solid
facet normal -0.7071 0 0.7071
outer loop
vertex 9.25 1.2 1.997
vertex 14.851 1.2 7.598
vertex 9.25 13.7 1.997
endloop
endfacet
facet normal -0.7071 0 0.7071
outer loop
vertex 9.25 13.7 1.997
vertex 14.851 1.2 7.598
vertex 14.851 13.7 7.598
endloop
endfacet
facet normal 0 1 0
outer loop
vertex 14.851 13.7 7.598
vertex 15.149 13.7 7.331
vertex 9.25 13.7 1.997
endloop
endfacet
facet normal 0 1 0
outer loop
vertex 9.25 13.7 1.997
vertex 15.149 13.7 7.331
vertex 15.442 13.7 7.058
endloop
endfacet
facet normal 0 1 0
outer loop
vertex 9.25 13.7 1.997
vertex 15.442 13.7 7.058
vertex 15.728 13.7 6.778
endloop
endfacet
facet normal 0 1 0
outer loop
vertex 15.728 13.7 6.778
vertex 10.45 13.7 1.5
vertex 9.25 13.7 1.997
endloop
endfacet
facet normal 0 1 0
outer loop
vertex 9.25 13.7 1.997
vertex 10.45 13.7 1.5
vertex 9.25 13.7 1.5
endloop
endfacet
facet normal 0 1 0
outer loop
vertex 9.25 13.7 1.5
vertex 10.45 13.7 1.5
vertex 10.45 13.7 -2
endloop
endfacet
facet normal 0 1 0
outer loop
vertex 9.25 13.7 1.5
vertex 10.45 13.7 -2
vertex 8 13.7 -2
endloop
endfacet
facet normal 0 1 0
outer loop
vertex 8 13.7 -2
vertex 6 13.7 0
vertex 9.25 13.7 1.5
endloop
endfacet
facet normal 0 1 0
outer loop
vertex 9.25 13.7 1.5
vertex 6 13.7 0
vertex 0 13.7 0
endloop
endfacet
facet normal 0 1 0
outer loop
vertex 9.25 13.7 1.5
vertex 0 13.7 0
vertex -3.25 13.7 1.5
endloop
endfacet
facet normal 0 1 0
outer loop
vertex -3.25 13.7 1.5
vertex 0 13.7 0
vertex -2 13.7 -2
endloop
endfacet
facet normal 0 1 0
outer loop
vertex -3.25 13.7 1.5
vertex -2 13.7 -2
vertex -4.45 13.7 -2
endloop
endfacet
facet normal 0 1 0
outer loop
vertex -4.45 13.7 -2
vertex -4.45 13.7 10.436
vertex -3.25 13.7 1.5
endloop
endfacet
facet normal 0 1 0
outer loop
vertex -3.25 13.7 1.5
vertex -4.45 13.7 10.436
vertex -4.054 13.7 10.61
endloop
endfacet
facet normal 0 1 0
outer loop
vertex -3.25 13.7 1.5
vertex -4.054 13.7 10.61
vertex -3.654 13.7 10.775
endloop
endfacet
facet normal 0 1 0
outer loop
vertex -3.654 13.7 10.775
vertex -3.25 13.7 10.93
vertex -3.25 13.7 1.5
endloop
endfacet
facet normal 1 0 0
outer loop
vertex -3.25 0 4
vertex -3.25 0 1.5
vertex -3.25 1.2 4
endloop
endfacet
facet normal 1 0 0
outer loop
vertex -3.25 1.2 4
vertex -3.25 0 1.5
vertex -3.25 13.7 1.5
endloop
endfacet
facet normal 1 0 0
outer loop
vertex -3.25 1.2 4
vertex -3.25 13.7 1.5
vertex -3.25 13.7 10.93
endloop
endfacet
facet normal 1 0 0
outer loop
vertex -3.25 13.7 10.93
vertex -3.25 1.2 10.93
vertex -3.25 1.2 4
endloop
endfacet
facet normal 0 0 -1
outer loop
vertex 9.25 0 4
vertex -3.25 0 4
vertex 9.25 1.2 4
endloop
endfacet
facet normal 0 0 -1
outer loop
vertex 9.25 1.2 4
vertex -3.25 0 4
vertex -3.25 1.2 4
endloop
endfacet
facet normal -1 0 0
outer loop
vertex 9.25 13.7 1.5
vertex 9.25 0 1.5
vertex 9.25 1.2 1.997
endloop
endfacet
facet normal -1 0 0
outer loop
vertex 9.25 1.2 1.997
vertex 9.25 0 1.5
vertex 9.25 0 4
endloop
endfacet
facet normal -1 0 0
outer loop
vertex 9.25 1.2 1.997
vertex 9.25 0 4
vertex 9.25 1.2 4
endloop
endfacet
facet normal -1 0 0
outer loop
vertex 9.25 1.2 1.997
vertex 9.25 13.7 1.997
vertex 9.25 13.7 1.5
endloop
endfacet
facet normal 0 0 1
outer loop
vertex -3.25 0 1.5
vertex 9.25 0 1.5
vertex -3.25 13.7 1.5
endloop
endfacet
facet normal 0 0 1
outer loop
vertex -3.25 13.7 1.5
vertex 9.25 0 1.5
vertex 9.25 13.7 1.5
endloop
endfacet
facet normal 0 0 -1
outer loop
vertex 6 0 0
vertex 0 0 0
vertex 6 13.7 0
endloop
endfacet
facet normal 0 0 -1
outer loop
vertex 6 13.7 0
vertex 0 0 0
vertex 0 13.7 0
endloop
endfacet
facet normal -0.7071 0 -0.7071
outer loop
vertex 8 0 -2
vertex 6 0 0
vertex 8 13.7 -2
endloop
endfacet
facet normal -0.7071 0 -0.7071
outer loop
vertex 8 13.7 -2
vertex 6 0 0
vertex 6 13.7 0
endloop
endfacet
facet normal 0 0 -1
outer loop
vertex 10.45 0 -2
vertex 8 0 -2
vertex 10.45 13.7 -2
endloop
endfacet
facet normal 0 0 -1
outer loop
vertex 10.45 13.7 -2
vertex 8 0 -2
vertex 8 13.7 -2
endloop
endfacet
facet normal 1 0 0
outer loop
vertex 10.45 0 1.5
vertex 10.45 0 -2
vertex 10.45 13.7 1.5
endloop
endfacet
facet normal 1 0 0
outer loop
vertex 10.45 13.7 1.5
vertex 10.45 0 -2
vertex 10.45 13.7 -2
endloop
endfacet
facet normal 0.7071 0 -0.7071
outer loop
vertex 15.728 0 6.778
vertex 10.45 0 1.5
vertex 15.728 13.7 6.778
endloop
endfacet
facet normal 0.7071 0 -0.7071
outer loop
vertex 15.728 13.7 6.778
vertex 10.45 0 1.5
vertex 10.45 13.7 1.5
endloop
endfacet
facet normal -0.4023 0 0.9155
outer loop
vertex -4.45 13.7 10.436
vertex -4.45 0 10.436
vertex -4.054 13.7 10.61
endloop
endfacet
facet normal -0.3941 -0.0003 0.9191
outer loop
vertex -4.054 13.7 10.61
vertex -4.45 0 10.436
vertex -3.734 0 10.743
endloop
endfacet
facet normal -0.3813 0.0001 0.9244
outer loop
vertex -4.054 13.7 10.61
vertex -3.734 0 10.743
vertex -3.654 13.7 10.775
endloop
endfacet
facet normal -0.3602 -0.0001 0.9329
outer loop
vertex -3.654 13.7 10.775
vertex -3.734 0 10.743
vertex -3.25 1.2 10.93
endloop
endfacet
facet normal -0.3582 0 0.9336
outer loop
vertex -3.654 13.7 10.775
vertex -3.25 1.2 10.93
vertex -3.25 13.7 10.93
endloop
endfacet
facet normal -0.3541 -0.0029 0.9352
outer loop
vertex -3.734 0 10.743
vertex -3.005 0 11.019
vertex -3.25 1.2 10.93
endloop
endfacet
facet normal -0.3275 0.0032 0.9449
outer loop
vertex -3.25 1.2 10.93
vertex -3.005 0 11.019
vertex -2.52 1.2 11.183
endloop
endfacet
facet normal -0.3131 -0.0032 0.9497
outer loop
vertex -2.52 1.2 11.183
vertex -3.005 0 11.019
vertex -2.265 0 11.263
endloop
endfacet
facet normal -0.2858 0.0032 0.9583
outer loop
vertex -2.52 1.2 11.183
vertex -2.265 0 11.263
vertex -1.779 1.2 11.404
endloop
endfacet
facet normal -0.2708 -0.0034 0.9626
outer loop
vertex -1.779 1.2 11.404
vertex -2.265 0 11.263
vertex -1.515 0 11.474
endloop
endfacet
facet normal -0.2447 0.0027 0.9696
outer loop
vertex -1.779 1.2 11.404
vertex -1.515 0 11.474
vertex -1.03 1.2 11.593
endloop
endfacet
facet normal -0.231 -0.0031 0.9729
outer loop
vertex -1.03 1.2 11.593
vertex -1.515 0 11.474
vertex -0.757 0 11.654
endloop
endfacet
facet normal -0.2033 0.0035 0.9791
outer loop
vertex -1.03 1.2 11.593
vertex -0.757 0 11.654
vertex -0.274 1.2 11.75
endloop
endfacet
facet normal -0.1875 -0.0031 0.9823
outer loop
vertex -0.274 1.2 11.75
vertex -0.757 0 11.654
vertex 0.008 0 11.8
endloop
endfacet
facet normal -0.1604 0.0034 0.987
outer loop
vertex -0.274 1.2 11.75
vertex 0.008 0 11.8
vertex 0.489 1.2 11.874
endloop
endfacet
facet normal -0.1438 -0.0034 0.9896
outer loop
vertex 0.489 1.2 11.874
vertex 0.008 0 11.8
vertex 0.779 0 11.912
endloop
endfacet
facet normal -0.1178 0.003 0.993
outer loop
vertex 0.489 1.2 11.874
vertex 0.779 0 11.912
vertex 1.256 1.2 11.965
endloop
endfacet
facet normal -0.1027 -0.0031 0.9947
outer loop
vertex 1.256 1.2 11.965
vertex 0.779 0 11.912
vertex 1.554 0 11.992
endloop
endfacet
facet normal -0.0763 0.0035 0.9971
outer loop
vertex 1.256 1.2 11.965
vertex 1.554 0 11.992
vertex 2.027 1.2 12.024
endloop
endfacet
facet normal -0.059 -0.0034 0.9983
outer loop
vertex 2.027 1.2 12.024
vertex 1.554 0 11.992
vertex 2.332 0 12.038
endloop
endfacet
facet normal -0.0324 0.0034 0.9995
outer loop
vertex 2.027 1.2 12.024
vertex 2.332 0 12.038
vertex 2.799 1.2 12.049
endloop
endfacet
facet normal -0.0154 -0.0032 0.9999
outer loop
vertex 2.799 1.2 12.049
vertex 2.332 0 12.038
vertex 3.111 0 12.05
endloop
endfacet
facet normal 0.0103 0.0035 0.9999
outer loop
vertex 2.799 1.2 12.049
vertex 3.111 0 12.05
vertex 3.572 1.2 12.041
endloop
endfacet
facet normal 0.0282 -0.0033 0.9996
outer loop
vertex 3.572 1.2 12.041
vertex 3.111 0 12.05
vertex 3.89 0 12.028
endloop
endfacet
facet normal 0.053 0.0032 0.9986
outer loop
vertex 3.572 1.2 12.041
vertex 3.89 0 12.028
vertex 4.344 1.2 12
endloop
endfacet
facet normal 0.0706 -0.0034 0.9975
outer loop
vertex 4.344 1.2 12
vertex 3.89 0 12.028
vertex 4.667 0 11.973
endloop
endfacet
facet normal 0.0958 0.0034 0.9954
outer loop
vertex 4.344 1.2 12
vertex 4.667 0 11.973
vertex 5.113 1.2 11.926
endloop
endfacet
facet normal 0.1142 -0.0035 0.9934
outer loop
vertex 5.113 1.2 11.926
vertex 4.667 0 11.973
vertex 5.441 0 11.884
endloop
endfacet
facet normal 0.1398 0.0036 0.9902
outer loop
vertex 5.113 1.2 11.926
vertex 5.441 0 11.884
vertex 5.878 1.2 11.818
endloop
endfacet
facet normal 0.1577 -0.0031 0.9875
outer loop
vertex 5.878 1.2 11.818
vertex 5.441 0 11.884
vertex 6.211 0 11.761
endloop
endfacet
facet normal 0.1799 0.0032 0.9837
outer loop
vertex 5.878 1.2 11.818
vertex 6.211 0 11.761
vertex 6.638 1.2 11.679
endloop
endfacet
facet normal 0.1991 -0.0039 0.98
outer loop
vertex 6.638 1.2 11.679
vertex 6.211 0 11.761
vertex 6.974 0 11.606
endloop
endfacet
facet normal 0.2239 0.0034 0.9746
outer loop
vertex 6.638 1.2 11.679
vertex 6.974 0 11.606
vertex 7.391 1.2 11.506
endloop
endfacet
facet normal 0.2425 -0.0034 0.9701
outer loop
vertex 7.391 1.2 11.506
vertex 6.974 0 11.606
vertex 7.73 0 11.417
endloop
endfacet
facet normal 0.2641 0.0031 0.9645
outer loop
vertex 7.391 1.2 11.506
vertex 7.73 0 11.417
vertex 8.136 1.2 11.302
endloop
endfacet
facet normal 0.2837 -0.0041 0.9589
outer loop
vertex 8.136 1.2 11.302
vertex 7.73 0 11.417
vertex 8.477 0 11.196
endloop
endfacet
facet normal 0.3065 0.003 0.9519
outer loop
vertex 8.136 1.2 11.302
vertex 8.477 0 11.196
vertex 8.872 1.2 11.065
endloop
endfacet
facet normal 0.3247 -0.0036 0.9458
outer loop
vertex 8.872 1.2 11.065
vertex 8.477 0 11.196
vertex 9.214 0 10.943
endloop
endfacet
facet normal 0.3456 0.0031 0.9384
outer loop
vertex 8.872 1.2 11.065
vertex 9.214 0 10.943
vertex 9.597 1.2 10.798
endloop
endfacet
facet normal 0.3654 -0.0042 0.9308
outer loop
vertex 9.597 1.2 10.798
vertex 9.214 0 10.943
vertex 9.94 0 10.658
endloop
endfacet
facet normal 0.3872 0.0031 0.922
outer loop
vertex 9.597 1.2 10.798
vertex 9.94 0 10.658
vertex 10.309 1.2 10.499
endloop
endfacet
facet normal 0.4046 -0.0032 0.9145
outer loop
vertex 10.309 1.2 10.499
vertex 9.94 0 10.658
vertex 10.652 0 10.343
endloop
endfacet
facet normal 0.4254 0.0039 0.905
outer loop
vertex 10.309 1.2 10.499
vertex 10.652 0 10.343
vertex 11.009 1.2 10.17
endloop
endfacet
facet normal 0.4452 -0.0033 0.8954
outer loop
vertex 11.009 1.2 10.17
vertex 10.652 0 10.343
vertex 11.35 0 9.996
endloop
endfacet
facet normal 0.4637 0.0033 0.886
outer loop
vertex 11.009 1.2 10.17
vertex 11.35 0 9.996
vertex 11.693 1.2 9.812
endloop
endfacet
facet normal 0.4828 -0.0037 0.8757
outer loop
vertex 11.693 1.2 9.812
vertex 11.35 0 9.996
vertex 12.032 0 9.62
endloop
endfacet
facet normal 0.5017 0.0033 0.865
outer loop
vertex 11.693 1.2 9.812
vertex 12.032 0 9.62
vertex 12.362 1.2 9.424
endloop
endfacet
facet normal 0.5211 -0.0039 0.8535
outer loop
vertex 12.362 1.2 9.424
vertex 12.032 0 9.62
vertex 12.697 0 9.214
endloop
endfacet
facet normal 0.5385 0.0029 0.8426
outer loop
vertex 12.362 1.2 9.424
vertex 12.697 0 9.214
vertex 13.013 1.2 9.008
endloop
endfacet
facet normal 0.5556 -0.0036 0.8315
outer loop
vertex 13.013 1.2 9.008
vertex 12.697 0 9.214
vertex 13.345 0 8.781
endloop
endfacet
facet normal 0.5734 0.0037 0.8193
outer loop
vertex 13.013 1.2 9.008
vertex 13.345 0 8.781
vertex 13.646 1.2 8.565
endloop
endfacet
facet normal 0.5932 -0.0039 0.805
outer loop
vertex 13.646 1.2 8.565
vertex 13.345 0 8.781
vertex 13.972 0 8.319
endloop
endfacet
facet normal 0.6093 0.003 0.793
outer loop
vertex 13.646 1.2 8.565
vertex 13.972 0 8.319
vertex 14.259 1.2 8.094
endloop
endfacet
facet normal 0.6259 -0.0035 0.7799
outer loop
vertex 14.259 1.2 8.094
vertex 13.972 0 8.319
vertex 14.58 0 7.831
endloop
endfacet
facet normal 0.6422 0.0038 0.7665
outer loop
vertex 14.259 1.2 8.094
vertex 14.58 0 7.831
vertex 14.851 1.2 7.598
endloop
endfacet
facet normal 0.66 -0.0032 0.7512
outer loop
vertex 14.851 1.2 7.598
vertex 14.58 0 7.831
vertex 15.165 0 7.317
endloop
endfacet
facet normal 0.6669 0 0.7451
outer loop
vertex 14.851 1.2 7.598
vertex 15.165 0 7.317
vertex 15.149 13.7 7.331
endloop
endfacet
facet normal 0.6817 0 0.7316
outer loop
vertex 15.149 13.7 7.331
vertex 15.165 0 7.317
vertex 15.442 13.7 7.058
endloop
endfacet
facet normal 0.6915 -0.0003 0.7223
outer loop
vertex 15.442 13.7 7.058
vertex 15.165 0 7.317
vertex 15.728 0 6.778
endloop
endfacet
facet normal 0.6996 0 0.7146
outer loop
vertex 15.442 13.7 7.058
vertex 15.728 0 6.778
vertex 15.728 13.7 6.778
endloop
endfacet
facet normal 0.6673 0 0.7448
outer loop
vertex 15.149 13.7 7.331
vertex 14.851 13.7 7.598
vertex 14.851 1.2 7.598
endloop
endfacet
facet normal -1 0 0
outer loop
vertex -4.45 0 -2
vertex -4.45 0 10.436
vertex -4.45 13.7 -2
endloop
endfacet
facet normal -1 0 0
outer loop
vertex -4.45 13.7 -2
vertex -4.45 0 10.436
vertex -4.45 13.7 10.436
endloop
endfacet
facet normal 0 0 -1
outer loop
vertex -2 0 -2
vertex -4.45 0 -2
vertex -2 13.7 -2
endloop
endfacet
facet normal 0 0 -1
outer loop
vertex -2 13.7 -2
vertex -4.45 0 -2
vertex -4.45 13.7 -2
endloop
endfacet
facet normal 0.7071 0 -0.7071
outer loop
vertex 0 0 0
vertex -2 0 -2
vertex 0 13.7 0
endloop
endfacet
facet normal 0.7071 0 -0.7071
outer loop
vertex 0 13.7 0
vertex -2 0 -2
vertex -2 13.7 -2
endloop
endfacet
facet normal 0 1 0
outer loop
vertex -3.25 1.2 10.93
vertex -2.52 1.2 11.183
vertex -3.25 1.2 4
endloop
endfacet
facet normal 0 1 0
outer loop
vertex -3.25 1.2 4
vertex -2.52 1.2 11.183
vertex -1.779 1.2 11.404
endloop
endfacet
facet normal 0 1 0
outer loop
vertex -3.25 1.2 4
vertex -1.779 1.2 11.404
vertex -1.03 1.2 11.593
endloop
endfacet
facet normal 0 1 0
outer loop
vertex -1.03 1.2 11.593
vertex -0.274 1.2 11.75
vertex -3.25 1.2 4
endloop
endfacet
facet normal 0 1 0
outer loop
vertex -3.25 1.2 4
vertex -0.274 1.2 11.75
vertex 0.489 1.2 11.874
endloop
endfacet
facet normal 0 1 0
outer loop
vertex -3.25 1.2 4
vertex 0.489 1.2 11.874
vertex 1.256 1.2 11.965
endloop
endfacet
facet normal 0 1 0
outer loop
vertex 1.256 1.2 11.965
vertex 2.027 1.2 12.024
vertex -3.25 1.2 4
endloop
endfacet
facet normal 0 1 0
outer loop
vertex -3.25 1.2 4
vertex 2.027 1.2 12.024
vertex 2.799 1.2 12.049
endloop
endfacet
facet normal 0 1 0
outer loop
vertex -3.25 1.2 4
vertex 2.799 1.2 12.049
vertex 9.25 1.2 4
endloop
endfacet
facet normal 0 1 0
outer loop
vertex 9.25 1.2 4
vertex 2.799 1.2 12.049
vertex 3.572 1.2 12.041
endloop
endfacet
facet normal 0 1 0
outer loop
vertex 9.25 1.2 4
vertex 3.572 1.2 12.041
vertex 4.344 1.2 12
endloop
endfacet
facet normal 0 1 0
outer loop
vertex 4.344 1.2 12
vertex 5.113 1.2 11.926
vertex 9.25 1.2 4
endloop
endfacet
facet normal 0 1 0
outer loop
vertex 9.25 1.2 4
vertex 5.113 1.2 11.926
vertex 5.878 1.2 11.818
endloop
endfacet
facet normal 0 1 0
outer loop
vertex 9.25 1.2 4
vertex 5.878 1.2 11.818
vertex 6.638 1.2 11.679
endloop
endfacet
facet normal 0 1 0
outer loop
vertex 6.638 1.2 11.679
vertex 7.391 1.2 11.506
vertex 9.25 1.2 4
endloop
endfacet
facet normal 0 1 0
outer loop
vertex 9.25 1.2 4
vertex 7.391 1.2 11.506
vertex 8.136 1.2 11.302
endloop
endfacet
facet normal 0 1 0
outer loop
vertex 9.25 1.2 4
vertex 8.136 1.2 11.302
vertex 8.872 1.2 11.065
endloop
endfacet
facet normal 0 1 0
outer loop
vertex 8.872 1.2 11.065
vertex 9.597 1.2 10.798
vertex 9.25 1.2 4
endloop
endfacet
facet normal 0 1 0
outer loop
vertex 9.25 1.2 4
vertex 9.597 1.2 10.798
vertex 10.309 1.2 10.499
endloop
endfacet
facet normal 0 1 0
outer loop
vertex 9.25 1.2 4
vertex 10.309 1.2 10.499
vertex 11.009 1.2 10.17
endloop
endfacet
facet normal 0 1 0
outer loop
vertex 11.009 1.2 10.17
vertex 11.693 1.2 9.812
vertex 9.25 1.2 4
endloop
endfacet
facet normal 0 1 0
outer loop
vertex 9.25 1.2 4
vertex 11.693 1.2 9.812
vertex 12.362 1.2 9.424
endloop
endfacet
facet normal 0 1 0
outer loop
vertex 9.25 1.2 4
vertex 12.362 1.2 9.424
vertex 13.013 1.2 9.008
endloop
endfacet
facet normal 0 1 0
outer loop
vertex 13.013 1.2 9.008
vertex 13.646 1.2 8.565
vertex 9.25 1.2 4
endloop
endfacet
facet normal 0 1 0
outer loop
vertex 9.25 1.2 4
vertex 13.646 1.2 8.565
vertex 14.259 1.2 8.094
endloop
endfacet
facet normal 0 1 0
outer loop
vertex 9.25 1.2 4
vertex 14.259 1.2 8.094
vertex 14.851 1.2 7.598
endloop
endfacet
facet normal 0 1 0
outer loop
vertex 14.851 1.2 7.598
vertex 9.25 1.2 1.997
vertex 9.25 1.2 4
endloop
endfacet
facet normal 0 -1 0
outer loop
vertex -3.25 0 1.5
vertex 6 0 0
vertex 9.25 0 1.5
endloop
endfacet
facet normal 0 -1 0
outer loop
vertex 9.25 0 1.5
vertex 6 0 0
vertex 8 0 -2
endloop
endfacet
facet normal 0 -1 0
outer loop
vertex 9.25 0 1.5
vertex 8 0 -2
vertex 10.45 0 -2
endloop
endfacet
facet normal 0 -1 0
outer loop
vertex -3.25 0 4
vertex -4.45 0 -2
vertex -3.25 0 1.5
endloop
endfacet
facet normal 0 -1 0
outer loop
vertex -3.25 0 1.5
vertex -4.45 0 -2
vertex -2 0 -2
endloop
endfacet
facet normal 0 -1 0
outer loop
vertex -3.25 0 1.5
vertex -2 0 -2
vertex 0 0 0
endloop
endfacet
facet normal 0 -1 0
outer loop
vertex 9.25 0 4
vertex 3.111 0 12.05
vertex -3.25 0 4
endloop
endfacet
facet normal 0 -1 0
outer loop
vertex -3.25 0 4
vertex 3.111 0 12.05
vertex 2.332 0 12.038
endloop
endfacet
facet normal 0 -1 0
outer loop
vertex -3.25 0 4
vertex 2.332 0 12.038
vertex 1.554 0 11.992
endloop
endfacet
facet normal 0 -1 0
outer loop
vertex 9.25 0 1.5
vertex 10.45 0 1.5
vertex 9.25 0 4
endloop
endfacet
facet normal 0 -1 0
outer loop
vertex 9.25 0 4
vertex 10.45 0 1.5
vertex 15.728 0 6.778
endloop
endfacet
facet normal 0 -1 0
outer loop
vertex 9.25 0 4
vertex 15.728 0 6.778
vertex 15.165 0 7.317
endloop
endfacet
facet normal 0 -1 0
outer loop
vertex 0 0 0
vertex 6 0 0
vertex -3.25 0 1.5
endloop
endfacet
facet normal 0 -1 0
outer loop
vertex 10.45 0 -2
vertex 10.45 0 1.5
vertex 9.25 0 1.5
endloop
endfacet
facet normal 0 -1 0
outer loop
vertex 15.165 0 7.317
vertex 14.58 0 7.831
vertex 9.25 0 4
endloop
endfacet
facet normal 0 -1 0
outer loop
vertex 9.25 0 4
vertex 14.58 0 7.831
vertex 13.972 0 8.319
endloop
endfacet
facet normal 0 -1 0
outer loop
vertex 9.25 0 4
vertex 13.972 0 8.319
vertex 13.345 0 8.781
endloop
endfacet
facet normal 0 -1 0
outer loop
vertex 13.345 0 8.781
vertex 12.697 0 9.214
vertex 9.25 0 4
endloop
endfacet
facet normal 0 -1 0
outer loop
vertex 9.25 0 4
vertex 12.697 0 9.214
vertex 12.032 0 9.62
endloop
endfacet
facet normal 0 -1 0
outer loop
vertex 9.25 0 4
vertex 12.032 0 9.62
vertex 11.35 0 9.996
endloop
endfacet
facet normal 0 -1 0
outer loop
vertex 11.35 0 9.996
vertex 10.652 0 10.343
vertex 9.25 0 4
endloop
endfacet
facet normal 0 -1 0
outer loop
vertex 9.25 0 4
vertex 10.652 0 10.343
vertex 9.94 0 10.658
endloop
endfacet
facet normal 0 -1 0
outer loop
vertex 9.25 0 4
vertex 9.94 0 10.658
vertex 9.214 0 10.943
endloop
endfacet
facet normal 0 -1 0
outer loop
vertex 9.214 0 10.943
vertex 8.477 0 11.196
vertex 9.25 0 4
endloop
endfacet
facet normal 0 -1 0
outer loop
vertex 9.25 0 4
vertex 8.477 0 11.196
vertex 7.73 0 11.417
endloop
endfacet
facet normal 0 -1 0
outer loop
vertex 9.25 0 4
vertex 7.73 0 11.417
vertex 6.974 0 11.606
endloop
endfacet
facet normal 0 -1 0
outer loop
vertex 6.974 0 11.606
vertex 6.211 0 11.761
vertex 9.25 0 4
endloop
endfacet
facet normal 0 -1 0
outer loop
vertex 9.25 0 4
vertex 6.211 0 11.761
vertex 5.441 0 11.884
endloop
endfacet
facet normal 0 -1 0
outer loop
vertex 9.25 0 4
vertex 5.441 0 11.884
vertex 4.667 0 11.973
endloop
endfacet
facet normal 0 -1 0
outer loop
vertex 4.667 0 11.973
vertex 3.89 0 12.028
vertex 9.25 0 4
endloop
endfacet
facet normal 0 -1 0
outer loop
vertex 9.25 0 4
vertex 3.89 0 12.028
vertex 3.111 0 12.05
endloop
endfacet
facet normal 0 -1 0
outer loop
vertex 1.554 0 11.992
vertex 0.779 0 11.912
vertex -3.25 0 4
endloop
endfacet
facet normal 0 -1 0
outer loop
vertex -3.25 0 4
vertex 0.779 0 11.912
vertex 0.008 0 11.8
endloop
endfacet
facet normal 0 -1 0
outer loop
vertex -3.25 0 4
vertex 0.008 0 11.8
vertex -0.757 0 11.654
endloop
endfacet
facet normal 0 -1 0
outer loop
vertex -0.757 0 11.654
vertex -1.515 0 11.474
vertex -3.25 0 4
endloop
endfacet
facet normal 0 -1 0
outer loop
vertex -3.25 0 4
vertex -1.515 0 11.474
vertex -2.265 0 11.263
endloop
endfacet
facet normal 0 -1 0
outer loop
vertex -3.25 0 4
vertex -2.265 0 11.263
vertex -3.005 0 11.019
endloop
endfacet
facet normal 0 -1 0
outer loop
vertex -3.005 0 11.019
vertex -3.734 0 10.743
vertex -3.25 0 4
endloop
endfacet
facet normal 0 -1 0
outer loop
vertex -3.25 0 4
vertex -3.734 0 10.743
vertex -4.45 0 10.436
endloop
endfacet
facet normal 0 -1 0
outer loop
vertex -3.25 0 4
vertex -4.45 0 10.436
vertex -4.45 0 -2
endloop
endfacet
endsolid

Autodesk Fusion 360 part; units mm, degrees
sketch "Sketch1" plane through (0, 0, 0) normal (0, 1, 0) x (1, 0, 0)
  line L0 (0, 0) -> (3, 0)
  line L1 (3, 0) -> (3, -16.2727) construction
  line L2 (9.25, -4) -> (-3.25, -4)
  line L3 (-3.25, -4) -> (-3.25, -1.5)
  line L4 (-3.25, -1.5) -> (9.25, -1.5)
  line L5 (9.25, -1.5) -> (9.25, -4)
  line L6 (9.25, -4) -> (-3.25, -1.5) construction
  line L7 (-3.25, -4) -> (9.25, -1.5) construction
  line L8 (0, 0) -> (-2, 2)
  line L9 (-2, 2) -> (-4.45, 2)
  line L10 (-4.45, 2) -> (-4.45, -1.5)
  line L11 (6, 0) -> (3, 0)
  line L12 (6, 0) -> (8, 2)
  line L13 (8, 2) -> (10.45, 2)
  line L14 (10.45, 2) -> (10.45, -1.5)
  line L15 (10.45, -1.5) -> (15.7279, -6.7779)
  arc A0 (-4.45, -10.4359) -> (15.7279, -6.7779) centre (3, 5.95) ccw
  line L16 (-4.45, -1.5) -> (-4.45, -10.4359)
  point P0 (3, -2.75)
  dimension "d3" = 2.5
  dimension "d5" = 12.5
  dimension "d9" = 135
  dimension "d10" = 2
  dimension "d11" = 1.5
  dimension "d12" = 1.2
  dimension "d14" = 3
  dimension "d20" = 18
  dimension "d21" = 45
extrude "Extrude1" add sketch "Sketch1" along normal blind 1.2
sketch "Sketch2" plane through (0, 1.2, 0) normal (0, 1, 0) x (-1, 0, 0)
  line L0 (3.25, 1.5) -> (-9.25, 1.5)
  line L1 (-9.25, 1.5) -> (-9.25, 4)
  line L2 (-9.25, 4) -> (3.25, 4)
  line L3 (3.25, 4) -> (3.25, 1.5)
  line L4 (0, 0) -> (2, -2)
  line L5 (2, -2) -> (4.45, -2)
  line L6 (4.45, -2) -> (4.45, 10.4359)
  line L7 (-15.7279, 6.7779) -> (-10.45, 1.5)
  line L8 (-10.45, 1.5) -> (-10.45, -2)
  line L9 (-10.45, -2) -> (-8, -2)
  line L10 (-8, -2) -> (-6, 0)
  line L11 (-6, 0) -> (0, 0)
  line L12 (-13.5347, 6.2818) -> (-14.8511, 7.5981)
  line L13 (-9.25, 1.9971) -> (-9.25, 1.5)
  line L14 (-9.25, 1.5) -> (3.25, 1.5)
  line L15 (3.25, 1.5) -> (3.25, 1.9971)
  line L16 (-8.4971, -0.8) -> (-6.4971, 1.2) construction
  line L17 (-6.4971, 1.2) -> (0.4971, 1.2) construction
  line L18 (0.4971, 1.2) -> (2.4971, -0.8) construction
  line L19 (2.4971, -0.8) -> (3.25, -0.8)
  line L20 (3.25, -0.8) -> (3.25, 1.9971) construction
  line L21 (-13.5347, 6.2818) -> (-9.25, 1.9971)
  line L22 (-9.25, 1.9971) -> (-9.25, -0.8) construction
  line L23 (-9.25, -0.8) -> (-8.4971, -0.8)
  arc A0 (4.45, 10.4359) -> (-15.7279, 6.7779) centre (-3, -5.95) ccw
  arc A1 (3.9533, 9.3435) -> (-14.8794, 5.9294) centre (-3, -5.95) ccw
  line L24 (3.25, 1.5) -> (3.25, 10.9301)
  dimension "d22" = 1.2
  dimension "d24" = -1.2
extrude "Extrude2" add sketch "Sketch2" along normal blind 12.5 contours L0 L1 L3 L4 L5 L6 L7 L8 L9 L10 L11 L12 L13 L14 L15 L21 A0 A1 L24 | L7 L12 A0 A1
